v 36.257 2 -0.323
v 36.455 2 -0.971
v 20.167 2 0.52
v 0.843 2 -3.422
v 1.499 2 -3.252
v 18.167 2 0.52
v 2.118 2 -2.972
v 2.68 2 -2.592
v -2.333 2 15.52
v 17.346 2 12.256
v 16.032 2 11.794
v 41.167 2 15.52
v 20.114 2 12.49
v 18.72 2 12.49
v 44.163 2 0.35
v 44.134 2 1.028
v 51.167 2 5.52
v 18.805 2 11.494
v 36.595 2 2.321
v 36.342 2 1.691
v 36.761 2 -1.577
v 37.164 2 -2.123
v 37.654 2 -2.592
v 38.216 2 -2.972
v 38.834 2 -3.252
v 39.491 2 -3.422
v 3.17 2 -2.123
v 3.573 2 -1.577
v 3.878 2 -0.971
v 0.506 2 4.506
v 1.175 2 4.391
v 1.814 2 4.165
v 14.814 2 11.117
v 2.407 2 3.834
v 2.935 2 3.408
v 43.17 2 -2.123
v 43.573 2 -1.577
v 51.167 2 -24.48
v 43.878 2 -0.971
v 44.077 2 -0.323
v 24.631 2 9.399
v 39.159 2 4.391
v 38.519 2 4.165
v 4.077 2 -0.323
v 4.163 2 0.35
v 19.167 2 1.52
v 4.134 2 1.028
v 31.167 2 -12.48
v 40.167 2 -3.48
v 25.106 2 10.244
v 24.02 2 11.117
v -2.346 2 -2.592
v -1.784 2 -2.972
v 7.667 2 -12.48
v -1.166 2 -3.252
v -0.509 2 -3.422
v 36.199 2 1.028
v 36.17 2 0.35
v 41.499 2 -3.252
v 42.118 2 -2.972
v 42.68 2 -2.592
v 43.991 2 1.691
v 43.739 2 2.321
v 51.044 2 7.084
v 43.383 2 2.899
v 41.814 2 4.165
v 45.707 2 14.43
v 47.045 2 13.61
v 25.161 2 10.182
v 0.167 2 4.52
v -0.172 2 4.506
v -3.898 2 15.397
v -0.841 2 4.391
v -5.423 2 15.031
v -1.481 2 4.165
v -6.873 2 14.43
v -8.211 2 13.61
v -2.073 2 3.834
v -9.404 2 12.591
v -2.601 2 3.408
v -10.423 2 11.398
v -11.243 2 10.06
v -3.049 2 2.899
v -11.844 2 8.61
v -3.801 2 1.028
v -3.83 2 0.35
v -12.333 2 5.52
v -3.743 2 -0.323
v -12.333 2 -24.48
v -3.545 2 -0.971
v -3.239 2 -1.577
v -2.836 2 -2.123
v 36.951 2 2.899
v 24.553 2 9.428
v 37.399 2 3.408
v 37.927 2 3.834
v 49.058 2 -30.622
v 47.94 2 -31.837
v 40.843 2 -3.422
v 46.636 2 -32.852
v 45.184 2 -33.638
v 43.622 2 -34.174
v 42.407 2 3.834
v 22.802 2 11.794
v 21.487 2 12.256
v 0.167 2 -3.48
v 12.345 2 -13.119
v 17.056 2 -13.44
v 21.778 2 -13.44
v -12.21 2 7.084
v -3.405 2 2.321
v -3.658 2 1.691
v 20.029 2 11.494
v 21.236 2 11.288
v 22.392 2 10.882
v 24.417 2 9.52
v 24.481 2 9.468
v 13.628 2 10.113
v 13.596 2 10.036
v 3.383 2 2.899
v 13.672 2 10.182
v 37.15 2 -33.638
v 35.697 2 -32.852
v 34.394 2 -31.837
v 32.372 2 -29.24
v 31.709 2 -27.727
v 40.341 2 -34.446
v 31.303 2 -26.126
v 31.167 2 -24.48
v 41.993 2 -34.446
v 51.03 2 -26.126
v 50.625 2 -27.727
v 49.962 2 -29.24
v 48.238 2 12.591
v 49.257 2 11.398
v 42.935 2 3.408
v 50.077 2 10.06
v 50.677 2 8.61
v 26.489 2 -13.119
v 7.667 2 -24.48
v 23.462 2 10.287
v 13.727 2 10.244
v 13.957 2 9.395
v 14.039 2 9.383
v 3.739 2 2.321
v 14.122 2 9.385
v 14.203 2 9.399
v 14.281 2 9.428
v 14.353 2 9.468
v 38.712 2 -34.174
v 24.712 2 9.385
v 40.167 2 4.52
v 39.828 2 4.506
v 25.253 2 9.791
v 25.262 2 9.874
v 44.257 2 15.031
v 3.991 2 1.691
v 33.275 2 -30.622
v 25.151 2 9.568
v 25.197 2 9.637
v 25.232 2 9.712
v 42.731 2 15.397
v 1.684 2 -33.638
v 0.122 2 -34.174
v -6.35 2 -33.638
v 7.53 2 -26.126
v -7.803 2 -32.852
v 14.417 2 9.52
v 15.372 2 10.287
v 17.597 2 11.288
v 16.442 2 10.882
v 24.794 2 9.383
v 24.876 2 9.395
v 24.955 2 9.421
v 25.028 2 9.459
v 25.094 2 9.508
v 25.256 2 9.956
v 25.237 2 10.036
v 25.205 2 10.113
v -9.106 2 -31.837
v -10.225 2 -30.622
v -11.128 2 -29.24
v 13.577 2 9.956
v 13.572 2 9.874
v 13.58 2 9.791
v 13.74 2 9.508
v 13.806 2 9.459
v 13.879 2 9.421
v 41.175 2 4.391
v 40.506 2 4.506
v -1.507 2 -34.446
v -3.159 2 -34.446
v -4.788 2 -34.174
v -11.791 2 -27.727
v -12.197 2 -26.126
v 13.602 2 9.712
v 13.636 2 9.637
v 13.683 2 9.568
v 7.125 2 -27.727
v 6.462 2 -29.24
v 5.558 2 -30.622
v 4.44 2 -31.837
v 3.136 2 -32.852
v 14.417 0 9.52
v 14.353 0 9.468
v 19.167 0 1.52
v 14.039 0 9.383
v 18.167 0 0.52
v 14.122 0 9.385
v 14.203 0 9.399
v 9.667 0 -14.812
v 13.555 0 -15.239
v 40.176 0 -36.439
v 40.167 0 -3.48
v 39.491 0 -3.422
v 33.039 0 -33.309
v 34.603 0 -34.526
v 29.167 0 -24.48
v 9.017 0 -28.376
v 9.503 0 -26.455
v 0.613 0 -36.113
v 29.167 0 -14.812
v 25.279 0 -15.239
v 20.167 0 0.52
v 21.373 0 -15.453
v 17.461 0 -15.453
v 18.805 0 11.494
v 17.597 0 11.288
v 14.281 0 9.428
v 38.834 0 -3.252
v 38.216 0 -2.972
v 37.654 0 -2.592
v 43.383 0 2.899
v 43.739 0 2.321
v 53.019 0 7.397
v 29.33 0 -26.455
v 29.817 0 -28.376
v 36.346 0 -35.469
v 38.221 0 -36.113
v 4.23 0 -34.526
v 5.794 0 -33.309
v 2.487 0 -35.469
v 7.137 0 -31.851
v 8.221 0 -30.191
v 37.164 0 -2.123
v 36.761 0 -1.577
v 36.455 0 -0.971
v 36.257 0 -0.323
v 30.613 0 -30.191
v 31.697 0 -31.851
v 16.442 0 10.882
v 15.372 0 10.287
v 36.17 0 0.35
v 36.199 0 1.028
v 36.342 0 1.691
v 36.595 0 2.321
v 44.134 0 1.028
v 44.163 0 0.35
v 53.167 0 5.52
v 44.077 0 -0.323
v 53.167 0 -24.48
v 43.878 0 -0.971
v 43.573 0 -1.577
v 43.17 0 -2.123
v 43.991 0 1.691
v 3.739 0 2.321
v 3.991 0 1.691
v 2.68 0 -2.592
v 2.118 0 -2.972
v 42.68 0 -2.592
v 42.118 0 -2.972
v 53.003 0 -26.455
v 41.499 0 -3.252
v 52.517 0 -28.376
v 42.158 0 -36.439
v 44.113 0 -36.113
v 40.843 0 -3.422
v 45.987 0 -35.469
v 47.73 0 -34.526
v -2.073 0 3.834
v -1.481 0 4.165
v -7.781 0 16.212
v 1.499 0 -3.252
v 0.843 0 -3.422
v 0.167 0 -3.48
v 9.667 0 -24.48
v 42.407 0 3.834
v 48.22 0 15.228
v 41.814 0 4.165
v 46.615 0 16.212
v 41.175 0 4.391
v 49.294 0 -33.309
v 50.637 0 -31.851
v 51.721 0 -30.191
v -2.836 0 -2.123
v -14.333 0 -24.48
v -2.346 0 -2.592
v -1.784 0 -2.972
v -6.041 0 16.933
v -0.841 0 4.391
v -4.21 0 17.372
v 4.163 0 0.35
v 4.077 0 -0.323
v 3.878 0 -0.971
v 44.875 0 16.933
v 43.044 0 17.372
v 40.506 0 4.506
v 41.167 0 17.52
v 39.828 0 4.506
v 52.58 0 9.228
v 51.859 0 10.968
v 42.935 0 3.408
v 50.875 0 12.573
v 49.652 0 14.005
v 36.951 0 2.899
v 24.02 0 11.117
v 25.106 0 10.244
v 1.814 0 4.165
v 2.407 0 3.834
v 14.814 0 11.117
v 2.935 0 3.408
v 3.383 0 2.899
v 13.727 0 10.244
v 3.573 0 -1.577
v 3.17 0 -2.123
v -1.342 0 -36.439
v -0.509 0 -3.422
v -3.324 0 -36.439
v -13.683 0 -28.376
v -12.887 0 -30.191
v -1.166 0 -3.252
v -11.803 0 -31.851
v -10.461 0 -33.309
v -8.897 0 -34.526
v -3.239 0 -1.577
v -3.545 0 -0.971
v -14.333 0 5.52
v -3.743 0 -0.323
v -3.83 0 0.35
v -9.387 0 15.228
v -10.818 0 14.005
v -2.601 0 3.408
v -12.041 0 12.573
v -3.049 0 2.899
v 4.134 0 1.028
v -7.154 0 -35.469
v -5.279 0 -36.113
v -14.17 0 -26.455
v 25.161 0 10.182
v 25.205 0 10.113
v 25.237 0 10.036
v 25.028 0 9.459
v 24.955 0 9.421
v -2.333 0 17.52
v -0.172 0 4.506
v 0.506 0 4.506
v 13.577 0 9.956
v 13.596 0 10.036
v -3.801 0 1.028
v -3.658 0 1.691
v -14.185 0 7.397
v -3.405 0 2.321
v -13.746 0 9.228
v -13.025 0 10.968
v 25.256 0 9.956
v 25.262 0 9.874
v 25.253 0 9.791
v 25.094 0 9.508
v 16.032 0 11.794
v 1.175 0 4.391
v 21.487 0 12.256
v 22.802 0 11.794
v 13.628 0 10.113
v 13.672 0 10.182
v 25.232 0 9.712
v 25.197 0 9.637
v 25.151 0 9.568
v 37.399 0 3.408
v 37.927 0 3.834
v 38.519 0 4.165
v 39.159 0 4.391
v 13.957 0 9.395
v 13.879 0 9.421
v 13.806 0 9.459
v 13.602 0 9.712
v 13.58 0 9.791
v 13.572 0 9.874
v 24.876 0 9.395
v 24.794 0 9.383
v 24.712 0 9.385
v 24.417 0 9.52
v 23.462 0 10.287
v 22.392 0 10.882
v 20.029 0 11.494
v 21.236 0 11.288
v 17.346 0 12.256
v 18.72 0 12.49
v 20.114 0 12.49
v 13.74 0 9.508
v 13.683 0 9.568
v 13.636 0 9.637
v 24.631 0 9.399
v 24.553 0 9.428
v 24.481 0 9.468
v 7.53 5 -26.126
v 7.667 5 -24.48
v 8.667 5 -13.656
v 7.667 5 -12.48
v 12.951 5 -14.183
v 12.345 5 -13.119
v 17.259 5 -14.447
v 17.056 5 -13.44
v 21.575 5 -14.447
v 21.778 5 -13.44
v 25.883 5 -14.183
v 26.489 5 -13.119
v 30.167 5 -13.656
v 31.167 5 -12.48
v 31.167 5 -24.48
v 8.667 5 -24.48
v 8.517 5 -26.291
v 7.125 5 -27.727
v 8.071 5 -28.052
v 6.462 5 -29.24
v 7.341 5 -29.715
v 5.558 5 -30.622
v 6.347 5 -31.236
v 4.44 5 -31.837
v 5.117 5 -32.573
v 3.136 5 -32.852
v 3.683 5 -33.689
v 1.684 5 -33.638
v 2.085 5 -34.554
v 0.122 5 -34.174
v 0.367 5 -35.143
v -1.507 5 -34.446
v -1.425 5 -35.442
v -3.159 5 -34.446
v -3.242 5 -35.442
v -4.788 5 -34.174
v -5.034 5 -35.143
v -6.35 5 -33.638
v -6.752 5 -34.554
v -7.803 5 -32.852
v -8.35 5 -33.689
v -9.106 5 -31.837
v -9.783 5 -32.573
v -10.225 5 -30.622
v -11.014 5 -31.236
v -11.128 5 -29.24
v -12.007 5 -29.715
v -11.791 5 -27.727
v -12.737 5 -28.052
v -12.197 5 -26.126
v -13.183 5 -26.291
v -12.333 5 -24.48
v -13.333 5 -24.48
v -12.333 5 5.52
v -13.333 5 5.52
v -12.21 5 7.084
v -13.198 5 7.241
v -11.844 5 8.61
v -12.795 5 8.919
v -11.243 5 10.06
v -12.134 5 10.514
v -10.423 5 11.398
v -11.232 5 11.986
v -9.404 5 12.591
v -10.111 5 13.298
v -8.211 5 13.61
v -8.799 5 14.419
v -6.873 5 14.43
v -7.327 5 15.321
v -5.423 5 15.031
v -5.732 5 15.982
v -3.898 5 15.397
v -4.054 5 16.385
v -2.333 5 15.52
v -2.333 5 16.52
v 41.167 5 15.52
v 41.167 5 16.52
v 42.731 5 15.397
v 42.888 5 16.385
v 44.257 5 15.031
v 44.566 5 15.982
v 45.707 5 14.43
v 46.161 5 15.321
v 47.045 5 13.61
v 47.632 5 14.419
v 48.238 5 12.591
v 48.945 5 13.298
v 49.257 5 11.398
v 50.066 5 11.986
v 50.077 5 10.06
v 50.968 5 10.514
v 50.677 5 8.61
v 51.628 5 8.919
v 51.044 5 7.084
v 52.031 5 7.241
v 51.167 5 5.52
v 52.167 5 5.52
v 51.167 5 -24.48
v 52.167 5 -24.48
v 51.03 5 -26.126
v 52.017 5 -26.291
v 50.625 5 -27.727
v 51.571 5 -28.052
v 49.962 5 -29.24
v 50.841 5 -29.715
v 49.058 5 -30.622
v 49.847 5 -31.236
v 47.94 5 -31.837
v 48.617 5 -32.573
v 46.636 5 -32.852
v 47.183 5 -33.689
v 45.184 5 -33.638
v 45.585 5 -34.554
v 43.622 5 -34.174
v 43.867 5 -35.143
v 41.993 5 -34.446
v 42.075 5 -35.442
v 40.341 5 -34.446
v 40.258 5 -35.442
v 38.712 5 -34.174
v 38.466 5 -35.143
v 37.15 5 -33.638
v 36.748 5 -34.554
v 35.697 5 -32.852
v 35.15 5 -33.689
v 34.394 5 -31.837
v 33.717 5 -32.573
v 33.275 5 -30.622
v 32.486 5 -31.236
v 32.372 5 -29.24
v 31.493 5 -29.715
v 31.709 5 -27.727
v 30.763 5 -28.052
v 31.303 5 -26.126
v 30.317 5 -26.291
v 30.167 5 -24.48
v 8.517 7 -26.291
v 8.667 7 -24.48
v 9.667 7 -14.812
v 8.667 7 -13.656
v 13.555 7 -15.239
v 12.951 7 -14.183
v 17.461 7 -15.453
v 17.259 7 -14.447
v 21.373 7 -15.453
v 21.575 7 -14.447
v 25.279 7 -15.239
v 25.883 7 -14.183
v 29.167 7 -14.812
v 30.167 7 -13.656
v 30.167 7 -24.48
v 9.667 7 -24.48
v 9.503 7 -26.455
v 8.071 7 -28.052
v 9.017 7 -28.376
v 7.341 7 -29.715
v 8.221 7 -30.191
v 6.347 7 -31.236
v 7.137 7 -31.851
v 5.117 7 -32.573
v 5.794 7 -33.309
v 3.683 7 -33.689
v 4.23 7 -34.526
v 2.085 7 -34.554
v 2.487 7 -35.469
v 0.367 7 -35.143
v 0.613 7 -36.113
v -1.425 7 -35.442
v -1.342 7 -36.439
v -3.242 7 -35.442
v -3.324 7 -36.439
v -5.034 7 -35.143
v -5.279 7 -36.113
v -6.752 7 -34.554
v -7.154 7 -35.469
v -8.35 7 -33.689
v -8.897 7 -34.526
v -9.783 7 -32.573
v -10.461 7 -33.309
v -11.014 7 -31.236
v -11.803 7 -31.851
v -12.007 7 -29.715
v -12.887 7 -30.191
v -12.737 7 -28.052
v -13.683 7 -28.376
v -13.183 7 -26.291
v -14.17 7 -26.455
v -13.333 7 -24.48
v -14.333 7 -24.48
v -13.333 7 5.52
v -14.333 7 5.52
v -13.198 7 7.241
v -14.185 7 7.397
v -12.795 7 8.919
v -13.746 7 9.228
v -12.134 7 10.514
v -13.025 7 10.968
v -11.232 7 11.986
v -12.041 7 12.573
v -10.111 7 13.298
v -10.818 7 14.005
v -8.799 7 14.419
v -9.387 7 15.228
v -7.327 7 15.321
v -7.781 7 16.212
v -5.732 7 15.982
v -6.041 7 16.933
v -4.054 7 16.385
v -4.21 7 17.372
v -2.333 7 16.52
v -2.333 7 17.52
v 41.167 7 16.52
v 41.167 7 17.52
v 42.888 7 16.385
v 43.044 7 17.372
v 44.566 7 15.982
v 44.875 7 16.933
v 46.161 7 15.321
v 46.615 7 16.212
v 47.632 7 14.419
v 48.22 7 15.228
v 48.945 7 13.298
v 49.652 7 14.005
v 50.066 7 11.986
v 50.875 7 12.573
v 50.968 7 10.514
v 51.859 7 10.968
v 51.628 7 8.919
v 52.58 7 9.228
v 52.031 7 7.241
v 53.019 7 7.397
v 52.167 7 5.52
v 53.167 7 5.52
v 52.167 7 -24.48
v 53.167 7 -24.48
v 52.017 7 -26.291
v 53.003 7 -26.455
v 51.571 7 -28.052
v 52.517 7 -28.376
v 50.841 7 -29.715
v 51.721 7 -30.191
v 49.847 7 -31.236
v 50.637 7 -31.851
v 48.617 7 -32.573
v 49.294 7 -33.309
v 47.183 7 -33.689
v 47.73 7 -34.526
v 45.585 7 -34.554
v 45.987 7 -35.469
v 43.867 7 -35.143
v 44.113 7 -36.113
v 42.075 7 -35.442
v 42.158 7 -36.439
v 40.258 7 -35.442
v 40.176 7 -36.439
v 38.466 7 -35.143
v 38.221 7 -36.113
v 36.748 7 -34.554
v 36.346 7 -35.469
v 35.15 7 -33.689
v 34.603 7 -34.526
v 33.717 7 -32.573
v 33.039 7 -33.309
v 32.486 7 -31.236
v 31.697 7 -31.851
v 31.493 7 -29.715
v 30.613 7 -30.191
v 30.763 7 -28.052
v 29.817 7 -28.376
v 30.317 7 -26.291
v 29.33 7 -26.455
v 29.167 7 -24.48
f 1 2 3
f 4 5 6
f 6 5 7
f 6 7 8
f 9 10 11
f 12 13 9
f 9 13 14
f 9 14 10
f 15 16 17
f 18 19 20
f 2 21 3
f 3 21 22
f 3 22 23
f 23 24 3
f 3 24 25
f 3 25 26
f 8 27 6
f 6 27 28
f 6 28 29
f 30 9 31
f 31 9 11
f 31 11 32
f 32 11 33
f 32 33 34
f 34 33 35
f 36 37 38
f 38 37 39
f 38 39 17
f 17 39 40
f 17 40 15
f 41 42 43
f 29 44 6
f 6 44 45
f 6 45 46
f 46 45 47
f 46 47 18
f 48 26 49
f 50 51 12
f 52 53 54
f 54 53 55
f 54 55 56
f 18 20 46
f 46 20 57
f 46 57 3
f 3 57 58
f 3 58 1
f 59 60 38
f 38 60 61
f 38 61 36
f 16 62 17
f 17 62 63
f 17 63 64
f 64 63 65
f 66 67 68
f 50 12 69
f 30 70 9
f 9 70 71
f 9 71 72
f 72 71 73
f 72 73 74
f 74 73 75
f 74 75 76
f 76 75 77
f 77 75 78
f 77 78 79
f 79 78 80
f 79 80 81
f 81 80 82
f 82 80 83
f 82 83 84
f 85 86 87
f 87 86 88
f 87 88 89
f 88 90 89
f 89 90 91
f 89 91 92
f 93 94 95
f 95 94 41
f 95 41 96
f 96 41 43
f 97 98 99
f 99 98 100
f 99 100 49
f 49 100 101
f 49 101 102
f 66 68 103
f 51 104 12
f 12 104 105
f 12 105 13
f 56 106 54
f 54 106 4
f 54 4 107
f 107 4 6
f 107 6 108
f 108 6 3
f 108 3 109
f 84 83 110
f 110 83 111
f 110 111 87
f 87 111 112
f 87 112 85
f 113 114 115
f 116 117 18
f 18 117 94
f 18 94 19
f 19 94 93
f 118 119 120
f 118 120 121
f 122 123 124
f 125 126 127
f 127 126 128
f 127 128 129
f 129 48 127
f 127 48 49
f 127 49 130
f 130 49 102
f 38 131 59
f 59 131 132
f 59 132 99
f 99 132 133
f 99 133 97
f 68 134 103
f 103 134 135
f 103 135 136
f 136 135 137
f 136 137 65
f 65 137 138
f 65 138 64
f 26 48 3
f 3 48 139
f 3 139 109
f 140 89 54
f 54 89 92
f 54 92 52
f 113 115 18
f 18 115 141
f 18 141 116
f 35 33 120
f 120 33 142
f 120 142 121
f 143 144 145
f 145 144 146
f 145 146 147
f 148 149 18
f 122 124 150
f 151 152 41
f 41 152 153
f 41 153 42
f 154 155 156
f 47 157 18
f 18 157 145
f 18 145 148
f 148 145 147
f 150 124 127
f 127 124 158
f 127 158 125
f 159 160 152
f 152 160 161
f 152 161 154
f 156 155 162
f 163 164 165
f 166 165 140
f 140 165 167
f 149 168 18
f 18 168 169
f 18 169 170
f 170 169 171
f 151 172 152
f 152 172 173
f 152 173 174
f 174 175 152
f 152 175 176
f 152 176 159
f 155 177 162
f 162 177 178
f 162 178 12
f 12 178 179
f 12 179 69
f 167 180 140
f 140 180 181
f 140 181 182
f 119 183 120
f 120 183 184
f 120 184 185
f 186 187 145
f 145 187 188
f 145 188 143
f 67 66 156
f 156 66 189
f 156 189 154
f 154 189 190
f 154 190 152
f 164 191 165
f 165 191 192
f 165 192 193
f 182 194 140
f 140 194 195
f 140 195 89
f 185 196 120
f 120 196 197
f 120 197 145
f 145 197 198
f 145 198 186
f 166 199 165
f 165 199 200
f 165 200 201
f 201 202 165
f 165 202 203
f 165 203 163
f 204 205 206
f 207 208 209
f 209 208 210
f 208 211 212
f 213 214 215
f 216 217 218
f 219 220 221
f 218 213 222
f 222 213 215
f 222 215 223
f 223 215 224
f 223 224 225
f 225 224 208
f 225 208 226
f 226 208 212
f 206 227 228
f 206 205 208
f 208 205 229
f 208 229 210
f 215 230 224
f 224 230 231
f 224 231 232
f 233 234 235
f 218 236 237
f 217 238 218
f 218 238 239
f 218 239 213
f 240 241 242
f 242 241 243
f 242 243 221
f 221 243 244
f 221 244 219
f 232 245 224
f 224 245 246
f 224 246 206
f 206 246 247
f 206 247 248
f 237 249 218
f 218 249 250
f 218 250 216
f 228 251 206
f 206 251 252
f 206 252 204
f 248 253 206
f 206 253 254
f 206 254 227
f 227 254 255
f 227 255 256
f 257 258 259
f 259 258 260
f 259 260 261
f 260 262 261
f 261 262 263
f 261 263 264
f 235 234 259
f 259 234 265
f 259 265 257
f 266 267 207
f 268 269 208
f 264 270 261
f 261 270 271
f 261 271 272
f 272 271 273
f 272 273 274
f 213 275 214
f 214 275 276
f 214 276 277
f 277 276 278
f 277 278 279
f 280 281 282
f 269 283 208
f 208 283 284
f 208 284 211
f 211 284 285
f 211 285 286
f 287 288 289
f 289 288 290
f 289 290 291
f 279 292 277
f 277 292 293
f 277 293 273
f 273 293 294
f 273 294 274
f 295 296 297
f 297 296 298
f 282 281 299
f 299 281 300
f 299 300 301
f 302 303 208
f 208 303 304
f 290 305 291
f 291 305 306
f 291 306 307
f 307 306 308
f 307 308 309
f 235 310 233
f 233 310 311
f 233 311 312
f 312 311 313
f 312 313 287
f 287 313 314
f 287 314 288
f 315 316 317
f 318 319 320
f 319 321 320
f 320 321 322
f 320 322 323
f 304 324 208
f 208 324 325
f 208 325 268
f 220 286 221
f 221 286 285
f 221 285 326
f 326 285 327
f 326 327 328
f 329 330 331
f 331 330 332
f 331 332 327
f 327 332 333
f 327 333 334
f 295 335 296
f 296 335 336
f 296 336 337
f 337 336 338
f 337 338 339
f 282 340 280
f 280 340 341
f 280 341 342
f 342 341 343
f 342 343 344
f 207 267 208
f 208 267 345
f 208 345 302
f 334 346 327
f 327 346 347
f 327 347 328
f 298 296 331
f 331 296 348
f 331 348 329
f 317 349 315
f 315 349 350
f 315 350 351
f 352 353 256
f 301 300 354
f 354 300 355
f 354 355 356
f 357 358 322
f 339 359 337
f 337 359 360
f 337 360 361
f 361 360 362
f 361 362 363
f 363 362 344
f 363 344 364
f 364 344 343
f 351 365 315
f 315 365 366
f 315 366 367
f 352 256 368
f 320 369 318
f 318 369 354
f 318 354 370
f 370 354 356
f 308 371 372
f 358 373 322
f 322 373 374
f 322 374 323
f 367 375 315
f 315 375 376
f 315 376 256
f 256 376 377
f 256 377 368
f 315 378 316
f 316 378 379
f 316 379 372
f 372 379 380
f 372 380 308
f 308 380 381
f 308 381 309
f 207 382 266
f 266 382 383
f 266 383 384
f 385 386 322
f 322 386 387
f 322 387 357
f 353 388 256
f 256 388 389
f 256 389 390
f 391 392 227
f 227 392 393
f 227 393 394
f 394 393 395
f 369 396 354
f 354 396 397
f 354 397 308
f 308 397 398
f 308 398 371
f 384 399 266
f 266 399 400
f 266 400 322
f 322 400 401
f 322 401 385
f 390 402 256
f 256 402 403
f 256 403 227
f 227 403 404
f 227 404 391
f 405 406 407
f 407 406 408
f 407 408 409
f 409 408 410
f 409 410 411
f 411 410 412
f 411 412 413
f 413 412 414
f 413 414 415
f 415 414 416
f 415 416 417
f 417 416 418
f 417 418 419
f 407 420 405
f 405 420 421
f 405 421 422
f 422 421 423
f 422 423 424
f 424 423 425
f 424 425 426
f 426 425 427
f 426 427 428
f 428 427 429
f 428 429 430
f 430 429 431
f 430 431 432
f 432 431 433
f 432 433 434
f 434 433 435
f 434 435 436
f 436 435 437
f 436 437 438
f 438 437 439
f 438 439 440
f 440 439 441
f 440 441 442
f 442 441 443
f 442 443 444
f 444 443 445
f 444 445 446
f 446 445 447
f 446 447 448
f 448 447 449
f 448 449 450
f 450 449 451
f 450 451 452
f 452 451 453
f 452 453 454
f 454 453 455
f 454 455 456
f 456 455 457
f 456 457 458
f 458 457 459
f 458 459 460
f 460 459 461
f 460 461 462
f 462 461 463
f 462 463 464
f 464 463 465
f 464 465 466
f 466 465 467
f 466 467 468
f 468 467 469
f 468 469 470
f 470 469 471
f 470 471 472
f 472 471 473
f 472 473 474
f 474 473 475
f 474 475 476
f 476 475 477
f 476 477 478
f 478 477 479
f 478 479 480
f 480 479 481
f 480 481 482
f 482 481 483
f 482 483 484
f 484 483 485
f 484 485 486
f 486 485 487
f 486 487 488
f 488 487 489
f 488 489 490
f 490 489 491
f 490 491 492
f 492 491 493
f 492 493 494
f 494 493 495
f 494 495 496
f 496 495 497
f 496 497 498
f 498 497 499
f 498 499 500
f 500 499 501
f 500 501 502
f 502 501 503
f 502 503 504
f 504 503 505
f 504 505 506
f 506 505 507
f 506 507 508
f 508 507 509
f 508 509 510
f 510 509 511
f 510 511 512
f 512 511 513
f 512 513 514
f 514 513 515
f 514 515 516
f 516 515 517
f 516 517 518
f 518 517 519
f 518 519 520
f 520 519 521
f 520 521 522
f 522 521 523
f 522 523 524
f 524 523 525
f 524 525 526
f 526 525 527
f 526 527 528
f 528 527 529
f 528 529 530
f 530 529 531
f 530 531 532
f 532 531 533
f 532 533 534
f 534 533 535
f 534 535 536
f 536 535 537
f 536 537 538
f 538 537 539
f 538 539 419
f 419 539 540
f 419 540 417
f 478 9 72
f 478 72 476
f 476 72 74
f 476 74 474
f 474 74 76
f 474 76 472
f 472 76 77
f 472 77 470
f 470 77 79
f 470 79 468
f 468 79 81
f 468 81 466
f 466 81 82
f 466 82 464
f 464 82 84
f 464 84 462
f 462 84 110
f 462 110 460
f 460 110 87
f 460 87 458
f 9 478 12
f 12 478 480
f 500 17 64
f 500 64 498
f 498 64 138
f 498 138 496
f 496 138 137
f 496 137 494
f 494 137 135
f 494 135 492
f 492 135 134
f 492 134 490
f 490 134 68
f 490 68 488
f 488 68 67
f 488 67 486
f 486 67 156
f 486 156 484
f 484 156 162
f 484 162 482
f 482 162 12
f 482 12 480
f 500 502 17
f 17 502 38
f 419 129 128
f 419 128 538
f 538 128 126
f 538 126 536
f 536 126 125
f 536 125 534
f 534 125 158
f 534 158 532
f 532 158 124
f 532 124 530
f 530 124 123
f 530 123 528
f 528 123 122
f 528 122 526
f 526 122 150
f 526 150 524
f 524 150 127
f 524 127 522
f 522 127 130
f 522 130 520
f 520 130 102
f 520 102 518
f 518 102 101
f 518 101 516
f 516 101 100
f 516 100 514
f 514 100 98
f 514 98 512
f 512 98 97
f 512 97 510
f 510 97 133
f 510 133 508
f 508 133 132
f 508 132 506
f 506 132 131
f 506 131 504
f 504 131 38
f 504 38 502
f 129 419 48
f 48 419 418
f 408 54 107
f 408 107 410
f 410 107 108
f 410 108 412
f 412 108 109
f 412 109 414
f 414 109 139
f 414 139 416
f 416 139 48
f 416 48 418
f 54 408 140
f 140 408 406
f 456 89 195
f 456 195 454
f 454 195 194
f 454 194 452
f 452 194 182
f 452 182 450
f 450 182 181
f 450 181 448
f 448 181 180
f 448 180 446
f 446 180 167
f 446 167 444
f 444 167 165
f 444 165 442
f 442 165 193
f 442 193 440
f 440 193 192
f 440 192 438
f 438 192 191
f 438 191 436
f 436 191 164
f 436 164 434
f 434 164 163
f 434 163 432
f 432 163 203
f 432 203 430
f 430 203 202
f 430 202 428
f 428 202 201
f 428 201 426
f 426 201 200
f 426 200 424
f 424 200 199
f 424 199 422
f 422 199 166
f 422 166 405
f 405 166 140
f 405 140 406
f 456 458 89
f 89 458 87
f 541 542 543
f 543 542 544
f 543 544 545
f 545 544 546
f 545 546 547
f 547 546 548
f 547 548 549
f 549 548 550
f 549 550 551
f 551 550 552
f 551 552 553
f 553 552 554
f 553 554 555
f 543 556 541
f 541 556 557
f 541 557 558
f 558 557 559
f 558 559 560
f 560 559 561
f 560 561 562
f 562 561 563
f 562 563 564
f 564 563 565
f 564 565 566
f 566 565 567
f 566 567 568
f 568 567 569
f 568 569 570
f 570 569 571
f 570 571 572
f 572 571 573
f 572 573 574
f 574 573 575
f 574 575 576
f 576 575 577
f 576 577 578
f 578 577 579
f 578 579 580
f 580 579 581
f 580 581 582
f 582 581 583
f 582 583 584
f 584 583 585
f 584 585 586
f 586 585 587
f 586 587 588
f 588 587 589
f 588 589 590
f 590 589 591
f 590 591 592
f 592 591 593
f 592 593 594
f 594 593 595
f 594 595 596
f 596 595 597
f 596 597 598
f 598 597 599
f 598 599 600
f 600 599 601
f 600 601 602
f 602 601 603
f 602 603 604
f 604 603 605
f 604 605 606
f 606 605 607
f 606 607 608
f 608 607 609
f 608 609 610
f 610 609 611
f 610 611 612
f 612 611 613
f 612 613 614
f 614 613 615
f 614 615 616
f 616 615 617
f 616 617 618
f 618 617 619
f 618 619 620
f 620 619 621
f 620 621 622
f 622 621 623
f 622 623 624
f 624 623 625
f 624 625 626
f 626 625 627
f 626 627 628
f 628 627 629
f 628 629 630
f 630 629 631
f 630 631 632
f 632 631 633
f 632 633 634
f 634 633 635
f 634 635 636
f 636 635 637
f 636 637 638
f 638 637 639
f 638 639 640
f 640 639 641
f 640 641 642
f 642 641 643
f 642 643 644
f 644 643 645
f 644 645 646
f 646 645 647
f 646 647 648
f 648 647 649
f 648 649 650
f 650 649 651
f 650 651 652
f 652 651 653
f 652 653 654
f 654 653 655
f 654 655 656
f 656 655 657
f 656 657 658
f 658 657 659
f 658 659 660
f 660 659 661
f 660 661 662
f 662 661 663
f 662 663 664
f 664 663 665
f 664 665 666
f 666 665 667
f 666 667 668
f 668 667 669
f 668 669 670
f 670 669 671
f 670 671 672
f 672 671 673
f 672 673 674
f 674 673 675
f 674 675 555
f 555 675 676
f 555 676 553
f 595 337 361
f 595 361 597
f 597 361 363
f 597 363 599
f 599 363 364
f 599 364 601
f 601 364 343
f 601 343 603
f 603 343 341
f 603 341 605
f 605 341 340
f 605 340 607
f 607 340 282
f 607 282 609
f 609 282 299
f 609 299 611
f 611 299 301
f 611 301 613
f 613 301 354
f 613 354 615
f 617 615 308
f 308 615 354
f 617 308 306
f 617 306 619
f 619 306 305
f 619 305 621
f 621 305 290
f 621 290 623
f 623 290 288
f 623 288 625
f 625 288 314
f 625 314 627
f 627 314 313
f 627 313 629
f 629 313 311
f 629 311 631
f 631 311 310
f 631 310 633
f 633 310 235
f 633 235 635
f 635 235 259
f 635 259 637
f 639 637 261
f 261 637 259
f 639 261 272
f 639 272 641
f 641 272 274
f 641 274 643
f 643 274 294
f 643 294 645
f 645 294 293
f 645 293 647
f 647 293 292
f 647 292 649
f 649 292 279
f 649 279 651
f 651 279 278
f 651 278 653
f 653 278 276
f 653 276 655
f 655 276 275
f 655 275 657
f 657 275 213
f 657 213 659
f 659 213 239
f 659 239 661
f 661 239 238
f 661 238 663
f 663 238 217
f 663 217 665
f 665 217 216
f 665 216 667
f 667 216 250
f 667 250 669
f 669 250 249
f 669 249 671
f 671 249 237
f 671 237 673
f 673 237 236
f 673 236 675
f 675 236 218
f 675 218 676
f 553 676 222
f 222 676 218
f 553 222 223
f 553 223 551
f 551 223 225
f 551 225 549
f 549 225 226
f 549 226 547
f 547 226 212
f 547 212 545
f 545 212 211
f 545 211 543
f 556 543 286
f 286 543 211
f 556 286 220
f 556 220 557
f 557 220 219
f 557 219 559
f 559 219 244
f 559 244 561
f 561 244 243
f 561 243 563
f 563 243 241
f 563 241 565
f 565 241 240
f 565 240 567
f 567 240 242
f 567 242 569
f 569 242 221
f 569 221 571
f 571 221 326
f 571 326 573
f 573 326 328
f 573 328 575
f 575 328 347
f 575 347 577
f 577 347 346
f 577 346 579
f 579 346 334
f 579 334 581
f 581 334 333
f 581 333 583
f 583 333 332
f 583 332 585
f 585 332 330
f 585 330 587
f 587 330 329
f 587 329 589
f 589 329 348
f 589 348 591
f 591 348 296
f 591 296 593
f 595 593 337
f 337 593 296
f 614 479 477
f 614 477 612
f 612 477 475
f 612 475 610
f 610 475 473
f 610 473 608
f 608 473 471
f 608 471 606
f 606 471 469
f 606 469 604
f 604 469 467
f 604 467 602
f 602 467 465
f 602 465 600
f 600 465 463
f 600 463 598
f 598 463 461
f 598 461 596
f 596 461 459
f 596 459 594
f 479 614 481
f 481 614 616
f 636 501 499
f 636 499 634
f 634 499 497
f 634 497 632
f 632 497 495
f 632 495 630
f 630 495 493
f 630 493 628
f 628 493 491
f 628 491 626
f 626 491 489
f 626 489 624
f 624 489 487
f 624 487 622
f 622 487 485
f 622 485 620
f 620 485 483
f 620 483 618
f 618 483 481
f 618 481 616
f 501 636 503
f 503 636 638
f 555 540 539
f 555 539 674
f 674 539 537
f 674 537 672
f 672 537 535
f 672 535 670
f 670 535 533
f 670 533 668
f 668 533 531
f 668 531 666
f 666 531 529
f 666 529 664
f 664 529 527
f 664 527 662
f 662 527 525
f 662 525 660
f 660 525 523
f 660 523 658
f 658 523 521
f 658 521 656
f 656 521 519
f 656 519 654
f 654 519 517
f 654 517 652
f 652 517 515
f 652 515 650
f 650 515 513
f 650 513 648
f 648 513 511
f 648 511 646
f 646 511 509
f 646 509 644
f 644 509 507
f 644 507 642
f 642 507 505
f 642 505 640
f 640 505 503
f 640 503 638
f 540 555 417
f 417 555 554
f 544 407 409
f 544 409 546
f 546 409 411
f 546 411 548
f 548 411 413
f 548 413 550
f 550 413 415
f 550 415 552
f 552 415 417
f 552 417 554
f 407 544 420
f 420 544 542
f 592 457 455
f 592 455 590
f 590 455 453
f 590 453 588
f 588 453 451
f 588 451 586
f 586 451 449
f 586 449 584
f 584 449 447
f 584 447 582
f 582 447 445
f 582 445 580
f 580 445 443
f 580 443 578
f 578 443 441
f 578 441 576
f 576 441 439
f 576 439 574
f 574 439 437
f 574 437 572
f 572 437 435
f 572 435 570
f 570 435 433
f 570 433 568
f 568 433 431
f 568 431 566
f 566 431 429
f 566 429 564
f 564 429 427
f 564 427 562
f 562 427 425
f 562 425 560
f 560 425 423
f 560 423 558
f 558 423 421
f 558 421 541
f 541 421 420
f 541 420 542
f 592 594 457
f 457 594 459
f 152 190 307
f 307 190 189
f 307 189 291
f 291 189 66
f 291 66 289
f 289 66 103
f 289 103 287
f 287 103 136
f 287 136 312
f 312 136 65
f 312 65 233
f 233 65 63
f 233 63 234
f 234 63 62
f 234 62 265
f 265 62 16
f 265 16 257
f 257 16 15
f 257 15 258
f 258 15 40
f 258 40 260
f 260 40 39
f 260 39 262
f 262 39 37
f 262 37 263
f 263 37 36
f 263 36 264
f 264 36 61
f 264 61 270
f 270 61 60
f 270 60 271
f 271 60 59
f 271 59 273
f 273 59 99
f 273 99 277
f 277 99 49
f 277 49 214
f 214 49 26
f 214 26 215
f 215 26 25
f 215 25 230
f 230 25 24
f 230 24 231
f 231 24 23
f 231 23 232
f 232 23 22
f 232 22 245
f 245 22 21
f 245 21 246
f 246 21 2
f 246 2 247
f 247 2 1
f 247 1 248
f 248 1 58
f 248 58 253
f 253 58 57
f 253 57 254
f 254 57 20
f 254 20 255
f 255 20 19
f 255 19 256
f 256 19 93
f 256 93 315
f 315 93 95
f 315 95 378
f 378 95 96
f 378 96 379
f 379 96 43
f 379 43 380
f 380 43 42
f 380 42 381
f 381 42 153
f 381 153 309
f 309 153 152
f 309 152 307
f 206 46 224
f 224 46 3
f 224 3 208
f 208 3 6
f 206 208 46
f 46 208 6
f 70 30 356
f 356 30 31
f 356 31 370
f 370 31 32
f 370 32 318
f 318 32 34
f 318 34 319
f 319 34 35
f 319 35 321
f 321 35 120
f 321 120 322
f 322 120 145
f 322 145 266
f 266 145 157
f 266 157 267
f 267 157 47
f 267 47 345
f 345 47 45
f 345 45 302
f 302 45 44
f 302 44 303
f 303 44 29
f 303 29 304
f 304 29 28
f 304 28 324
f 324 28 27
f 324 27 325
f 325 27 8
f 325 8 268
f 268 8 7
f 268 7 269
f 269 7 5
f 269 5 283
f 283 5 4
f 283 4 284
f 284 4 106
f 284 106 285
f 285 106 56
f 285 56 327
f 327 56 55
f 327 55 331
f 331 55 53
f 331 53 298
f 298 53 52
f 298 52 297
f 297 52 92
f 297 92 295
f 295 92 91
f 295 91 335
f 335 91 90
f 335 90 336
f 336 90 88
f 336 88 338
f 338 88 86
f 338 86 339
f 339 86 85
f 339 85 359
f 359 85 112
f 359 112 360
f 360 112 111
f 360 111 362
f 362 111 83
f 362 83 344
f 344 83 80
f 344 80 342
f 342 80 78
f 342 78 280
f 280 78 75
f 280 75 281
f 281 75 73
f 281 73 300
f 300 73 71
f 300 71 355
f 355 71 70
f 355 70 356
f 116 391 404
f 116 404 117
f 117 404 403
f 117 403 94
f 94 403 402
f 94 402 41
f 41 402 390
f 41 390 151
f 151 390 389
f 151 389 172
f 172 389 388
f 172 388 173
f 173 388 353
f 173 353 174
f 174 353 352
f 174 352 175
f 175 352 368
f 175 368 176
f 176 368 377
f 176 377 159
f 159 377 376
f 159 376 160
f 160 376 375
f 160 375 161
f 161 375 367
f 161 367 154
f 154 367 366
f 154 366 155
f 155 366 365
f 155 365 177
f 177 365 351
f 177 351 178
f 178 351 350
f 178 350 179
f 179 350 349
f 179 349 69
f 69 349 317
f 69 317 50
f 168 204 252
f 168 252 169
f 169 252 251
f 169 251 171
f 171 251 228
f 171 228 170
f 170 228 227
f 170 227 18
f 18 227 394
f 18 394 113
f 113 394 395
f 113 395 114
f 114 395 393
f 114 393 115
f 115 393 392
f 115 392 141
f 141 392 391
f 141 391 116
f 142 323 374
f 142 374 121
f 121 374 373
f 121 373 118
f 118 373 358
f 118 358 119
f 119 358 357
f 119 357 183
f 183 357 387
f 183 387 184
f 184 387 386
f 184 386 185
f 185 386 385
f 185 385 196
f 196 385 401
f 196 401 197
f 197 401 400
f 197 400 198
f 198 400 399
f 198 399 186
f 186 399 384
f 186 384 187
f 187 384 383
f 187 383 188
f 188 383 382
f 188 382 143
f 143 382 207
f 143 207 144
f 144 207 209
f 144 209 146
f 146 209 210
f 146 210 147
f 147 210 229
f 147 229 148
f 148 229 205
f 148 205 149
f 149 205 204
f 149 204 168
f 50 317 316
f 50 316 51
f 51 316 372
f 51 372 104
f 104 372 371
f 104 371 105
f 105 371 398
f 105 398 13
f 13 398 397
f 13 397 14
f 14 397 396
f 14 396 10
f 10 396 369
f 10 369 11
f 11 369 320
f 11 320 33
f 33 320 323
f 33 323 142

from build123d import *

# Parameters (mm, degrees)
EXTRUDE_1_DEPTH     = 2
EXTRUDE_2_DEPTH     = 5
EXTRUDE_3_DEPTH     = 7
SKETCH_2_R          = 4
CUT_EXTRUDE_1_DEPTH = 9


with BuildPart() as part:
    # 草图1 → 凸台-拉伸1 (new body)
    with BuildSketch(Plane(origin=(0, 0, 0), x_dir=(1, 0, 0), z_dir=(0, 1, 0))):
        with BuildLine():
            Line((-12.333178869, 24.480029994), (-12.333178869, 12.480029994))
            Line((-12.333178869, 12.480029994), (-12.333178869, -5.519970006))
            ThreePointArc((-12.333178869, -5.519970006), (-9.404246681, -12.591037818), (-2.333178869, -15.519970006))
            Line((-2.333178869, -15.519970006), (41.166821131, -15.519970006))
            ThreePointArc((41.166821131, -15.519970006), (48.237888943, -12.591037818), (51.166821131, -5.519970006))
            Line((51.166821131, -5.519970006), (51.166821131, 12.480029994))
            Line((51.166821131, 12.480029994), (51.166821131, 24.480029994))
            ThreePointArc((51.166821131, 24.480029994), (41.166821131, 34.480029994), (31.166821131, 24.480029994))
            Line((31.166821131, 24.480029994), (31.166821131, 12.480029994))
            ThreePointArc((31.166821131, 12.480029994), (19.416821131, 13.480029994), (7.666821131, 12.480029994))
            Line((7.666821131, 12.480029994), (7.666821131, 24.480029994))
            ThreePointArc((7.666821131, 24.480029994), (-2.333178869, 34.480029994), (-12.333178869, 24.480029994))
        make_face()
    extrude(amount=EXTRUDE_1_DEPTH)

    # 草图1<3> → 凸台-拉伸2 (add)
    with BuildSketch(Plane(origin=(0, 0, 0), x_dir=(1, 0, 0), z_dir=(0, 1, 0))):
        with BuildLine():
            Line((30.166821131, 24.480029994), (30.166821131, 13.655987129))
            ThreePointArc((30.166821131, 13.655987129), (19.416821131, 14.480029994), (8.666821131, 13.655987129))
            Line((8.666821131, 13.655987129), (8.666821131, 24.480029994))
            ThreePointArc((8.666821131, 24.480029994), (-2.333178869, 35.480029994), (-13.333178869, 24.480029994))
            Line((-13.333178869, 24.480029994), (-13.333178869, 12.480029994))
            Line((-13.333178869, 12.480029994), (-13.333178869, -5.519970006))
            ThreePointArc((-13.333178869, -5.519970006), (-10.111353462, -13.298144599), (-2.333178869, -16.519970006))
            Line((-2.333178869, -16.519970006), (41.166821131, -16.519970006))
            ThreePointArc((41.166821131, -16.519970006), (48.944995724, -13.298144599), (52.166821131, -5.519970006))
            Line((52.166821131, -5.519970006), (52.166821131, 12.480029994))
            Line((52.166821131, 12.480029994), (52.166821131, 24.480029994))
            ThreePointArc((52.166821131, 24.480029994), (41.166821131, 35.480029994), (30.166821131, 24.480029994))
        make_face()
        with BuildLine():
            Line((-12.333178869, 12.480029994), (-12.333178869, 24.480029994))
            ThreePointArc((-12.333178869, 24.480029994), (-2.333178869, 34.480029994), (7.666821131, 24.480029994))
            Line((7.666821131, 24.480029994), (7.666821131, 12.480029994))
            ThreePointArc((7.666821131, 12.480029994), (19.416821131, 13.480029994), (31.166821131, 12.480029994))
            Line((31.166821131, 12.480029994), (31.166821131, 24.480029994))
            ThreePointArc((31.166821131, 24.480029994), (41.166821131, 34.480029994), (51.166821131, 24.480029994))
            Line((51.166821131, 24.480029994), (51.166821131, 12.480029994))
            Line((51.166821131, 12.480029994), (51.166821131, -5.519970006))
            ThreePointArc((51.166821131, -5.519970006), (48.237888943, -12.591037818), (41.166821131, -15.519970006))
            Line((41.166821131, -15.519970006), (-2.333178869, -15.519970006))
            ThreePointArc((-2.333178869, -15.519970006), (-9.404246681, -12.591037818), (-12.333178869, -5.519970006))
            Line((-12.333178869, -5.519970006), (-12.333178869, 12.480029994))
        make_face(mode=Mode.SUBTRACT)
    extrude(amount=EXTRUDE_2_DEPTH)

    # 草图1<4> → 凸台-拉伸3 (add)
    with BuildSketch(Plane(origin=(0, 0, 0), x_dir=(1, 0, 0), z_dir=(0, 1, 0))):
        with BuildLine():
            Line((-2.333178869, -17.519970006), (41.166821131, -17.519970006))
            ThreePointArc((41.166821131, -17.519970006), (49.652102505, -14.00525138), (53.166821131, -5.519970006))
            Line((53.166821131, -5.519970006), (53.166821131, 12.480029994))
            Line((53.166821131, 12.480029994), (53.166821131, 24.480029994))
            ThreePointArc((53.166821131, 24.480029994), (41.166821131, 36.480029994), (29.166821131, 24.480029994))
            Line((29.166821131, 24.480029994), (29.166821131, 14.81243236))
            ThreePointArc((29.166821131, 14.81243236), (19.416821131, 15.480029994), (9.666821131, 14.81243236))
            Line((9.666821131, 14.81243236), (9.666821131, 24.480029994))
            ThreePointArc((9.666821131, 24.480029994), (-2.333178869, 36.480029994), (-14.333178869, 24.480029994))
            Line((-14.333178869, 24.480029994), (-14.333178869, 12.480029994))
            Line((-14.333178869, 12.480029994), (-14.333178869, -5.519970006))
            ThreePointArc((-14.333178869, -5.519970006), (-10.818460243, -14.00525138), (-2.333178869, -17.519970006))
        make_face()
        with BuildLine():
            Line((30.166821131, 24.480029994), (30.166821131, 13.655987129))
            ThreePointArc((30.166821131, 13.655987129), (19.416821131, 14.480029994), (8.666821131, 13.655987129))
            Line((8.666821131, 13.655987129), (8.666821131, 24.480029994))
            ThreePointArc((8.666821131, 24.480029994), (-2.333178869, 35.480029994), (-13.333178869, 24.480029994))
            Line((-13.333178869, 24.480029994), (-13.333178869, 12.480029994))
            Line((-13.333178869, 12.480029994), (-13.333178869, -5.519970006))
            ThreePointArc((-13.333178869, -5.519970006), (-10.111353462, -13.298144599), (-2.333178869, -16.519970006))
            Line((-2.333178869, -16.519970006), (41.166821131, -16.519970006))
            ThreePointArc((41.166821131, -16.519970006), (48.944995724, -13.298144599), (52.166821131, -5.519970006))
            Line((52.166821131, -5.519970006), (52.166821131, 12.480029994))
            Line((52.166821131, 12.480029994), (52.166821131, 24.480029994))
            ThreePointArc((52.166821131, 24.480029994), (41.166821131, 35.480029994), (30.166821131, 24.480029994))
        make_face(mode=Mode.SUBTRACT)
    extrude(amount=EXTRUDE_3_DEPTH)

    # 草图2 → 切除-拉伸1 (cut)
    with BuildSketch(Plane.XZ):
        with Locations((40.166821131, 0.519970006)):
            Circle(SKETCH_2_R)
        Polygon((19.166821131, 1.519970006), (18.166821131, 0.519970006), (20.166821131, 0.519970006), align=None)
        with Locations((0.166821131, 0.519970006)):
            Circle(SKETCH_2_R)
        with BuildLine():
            ThreePointArc((14.416821131, 9.519970006), (19.416821131, 11.519970006), (24.416821131, 9.519970006))
            ThreePointArc((24.416821131, 9.519970006), (25.123717683, 9.537211385), (25.106476303, 10.244107937))
            ThreePointArc((25.106476303, 10.244107937), (19.416821131, 12.519970006), (13.727165958, 10.244107937))
            ThreePointArc((13.727165958, 10.244107937), (13.709924579, 9.537211385), (14.416821131, 9.519970006))
        make_face()
    extrude(amount=-CUT_EXTRUDE_1_DEPTH, mode=Mode.SUBTRACT)


solid = part.part
